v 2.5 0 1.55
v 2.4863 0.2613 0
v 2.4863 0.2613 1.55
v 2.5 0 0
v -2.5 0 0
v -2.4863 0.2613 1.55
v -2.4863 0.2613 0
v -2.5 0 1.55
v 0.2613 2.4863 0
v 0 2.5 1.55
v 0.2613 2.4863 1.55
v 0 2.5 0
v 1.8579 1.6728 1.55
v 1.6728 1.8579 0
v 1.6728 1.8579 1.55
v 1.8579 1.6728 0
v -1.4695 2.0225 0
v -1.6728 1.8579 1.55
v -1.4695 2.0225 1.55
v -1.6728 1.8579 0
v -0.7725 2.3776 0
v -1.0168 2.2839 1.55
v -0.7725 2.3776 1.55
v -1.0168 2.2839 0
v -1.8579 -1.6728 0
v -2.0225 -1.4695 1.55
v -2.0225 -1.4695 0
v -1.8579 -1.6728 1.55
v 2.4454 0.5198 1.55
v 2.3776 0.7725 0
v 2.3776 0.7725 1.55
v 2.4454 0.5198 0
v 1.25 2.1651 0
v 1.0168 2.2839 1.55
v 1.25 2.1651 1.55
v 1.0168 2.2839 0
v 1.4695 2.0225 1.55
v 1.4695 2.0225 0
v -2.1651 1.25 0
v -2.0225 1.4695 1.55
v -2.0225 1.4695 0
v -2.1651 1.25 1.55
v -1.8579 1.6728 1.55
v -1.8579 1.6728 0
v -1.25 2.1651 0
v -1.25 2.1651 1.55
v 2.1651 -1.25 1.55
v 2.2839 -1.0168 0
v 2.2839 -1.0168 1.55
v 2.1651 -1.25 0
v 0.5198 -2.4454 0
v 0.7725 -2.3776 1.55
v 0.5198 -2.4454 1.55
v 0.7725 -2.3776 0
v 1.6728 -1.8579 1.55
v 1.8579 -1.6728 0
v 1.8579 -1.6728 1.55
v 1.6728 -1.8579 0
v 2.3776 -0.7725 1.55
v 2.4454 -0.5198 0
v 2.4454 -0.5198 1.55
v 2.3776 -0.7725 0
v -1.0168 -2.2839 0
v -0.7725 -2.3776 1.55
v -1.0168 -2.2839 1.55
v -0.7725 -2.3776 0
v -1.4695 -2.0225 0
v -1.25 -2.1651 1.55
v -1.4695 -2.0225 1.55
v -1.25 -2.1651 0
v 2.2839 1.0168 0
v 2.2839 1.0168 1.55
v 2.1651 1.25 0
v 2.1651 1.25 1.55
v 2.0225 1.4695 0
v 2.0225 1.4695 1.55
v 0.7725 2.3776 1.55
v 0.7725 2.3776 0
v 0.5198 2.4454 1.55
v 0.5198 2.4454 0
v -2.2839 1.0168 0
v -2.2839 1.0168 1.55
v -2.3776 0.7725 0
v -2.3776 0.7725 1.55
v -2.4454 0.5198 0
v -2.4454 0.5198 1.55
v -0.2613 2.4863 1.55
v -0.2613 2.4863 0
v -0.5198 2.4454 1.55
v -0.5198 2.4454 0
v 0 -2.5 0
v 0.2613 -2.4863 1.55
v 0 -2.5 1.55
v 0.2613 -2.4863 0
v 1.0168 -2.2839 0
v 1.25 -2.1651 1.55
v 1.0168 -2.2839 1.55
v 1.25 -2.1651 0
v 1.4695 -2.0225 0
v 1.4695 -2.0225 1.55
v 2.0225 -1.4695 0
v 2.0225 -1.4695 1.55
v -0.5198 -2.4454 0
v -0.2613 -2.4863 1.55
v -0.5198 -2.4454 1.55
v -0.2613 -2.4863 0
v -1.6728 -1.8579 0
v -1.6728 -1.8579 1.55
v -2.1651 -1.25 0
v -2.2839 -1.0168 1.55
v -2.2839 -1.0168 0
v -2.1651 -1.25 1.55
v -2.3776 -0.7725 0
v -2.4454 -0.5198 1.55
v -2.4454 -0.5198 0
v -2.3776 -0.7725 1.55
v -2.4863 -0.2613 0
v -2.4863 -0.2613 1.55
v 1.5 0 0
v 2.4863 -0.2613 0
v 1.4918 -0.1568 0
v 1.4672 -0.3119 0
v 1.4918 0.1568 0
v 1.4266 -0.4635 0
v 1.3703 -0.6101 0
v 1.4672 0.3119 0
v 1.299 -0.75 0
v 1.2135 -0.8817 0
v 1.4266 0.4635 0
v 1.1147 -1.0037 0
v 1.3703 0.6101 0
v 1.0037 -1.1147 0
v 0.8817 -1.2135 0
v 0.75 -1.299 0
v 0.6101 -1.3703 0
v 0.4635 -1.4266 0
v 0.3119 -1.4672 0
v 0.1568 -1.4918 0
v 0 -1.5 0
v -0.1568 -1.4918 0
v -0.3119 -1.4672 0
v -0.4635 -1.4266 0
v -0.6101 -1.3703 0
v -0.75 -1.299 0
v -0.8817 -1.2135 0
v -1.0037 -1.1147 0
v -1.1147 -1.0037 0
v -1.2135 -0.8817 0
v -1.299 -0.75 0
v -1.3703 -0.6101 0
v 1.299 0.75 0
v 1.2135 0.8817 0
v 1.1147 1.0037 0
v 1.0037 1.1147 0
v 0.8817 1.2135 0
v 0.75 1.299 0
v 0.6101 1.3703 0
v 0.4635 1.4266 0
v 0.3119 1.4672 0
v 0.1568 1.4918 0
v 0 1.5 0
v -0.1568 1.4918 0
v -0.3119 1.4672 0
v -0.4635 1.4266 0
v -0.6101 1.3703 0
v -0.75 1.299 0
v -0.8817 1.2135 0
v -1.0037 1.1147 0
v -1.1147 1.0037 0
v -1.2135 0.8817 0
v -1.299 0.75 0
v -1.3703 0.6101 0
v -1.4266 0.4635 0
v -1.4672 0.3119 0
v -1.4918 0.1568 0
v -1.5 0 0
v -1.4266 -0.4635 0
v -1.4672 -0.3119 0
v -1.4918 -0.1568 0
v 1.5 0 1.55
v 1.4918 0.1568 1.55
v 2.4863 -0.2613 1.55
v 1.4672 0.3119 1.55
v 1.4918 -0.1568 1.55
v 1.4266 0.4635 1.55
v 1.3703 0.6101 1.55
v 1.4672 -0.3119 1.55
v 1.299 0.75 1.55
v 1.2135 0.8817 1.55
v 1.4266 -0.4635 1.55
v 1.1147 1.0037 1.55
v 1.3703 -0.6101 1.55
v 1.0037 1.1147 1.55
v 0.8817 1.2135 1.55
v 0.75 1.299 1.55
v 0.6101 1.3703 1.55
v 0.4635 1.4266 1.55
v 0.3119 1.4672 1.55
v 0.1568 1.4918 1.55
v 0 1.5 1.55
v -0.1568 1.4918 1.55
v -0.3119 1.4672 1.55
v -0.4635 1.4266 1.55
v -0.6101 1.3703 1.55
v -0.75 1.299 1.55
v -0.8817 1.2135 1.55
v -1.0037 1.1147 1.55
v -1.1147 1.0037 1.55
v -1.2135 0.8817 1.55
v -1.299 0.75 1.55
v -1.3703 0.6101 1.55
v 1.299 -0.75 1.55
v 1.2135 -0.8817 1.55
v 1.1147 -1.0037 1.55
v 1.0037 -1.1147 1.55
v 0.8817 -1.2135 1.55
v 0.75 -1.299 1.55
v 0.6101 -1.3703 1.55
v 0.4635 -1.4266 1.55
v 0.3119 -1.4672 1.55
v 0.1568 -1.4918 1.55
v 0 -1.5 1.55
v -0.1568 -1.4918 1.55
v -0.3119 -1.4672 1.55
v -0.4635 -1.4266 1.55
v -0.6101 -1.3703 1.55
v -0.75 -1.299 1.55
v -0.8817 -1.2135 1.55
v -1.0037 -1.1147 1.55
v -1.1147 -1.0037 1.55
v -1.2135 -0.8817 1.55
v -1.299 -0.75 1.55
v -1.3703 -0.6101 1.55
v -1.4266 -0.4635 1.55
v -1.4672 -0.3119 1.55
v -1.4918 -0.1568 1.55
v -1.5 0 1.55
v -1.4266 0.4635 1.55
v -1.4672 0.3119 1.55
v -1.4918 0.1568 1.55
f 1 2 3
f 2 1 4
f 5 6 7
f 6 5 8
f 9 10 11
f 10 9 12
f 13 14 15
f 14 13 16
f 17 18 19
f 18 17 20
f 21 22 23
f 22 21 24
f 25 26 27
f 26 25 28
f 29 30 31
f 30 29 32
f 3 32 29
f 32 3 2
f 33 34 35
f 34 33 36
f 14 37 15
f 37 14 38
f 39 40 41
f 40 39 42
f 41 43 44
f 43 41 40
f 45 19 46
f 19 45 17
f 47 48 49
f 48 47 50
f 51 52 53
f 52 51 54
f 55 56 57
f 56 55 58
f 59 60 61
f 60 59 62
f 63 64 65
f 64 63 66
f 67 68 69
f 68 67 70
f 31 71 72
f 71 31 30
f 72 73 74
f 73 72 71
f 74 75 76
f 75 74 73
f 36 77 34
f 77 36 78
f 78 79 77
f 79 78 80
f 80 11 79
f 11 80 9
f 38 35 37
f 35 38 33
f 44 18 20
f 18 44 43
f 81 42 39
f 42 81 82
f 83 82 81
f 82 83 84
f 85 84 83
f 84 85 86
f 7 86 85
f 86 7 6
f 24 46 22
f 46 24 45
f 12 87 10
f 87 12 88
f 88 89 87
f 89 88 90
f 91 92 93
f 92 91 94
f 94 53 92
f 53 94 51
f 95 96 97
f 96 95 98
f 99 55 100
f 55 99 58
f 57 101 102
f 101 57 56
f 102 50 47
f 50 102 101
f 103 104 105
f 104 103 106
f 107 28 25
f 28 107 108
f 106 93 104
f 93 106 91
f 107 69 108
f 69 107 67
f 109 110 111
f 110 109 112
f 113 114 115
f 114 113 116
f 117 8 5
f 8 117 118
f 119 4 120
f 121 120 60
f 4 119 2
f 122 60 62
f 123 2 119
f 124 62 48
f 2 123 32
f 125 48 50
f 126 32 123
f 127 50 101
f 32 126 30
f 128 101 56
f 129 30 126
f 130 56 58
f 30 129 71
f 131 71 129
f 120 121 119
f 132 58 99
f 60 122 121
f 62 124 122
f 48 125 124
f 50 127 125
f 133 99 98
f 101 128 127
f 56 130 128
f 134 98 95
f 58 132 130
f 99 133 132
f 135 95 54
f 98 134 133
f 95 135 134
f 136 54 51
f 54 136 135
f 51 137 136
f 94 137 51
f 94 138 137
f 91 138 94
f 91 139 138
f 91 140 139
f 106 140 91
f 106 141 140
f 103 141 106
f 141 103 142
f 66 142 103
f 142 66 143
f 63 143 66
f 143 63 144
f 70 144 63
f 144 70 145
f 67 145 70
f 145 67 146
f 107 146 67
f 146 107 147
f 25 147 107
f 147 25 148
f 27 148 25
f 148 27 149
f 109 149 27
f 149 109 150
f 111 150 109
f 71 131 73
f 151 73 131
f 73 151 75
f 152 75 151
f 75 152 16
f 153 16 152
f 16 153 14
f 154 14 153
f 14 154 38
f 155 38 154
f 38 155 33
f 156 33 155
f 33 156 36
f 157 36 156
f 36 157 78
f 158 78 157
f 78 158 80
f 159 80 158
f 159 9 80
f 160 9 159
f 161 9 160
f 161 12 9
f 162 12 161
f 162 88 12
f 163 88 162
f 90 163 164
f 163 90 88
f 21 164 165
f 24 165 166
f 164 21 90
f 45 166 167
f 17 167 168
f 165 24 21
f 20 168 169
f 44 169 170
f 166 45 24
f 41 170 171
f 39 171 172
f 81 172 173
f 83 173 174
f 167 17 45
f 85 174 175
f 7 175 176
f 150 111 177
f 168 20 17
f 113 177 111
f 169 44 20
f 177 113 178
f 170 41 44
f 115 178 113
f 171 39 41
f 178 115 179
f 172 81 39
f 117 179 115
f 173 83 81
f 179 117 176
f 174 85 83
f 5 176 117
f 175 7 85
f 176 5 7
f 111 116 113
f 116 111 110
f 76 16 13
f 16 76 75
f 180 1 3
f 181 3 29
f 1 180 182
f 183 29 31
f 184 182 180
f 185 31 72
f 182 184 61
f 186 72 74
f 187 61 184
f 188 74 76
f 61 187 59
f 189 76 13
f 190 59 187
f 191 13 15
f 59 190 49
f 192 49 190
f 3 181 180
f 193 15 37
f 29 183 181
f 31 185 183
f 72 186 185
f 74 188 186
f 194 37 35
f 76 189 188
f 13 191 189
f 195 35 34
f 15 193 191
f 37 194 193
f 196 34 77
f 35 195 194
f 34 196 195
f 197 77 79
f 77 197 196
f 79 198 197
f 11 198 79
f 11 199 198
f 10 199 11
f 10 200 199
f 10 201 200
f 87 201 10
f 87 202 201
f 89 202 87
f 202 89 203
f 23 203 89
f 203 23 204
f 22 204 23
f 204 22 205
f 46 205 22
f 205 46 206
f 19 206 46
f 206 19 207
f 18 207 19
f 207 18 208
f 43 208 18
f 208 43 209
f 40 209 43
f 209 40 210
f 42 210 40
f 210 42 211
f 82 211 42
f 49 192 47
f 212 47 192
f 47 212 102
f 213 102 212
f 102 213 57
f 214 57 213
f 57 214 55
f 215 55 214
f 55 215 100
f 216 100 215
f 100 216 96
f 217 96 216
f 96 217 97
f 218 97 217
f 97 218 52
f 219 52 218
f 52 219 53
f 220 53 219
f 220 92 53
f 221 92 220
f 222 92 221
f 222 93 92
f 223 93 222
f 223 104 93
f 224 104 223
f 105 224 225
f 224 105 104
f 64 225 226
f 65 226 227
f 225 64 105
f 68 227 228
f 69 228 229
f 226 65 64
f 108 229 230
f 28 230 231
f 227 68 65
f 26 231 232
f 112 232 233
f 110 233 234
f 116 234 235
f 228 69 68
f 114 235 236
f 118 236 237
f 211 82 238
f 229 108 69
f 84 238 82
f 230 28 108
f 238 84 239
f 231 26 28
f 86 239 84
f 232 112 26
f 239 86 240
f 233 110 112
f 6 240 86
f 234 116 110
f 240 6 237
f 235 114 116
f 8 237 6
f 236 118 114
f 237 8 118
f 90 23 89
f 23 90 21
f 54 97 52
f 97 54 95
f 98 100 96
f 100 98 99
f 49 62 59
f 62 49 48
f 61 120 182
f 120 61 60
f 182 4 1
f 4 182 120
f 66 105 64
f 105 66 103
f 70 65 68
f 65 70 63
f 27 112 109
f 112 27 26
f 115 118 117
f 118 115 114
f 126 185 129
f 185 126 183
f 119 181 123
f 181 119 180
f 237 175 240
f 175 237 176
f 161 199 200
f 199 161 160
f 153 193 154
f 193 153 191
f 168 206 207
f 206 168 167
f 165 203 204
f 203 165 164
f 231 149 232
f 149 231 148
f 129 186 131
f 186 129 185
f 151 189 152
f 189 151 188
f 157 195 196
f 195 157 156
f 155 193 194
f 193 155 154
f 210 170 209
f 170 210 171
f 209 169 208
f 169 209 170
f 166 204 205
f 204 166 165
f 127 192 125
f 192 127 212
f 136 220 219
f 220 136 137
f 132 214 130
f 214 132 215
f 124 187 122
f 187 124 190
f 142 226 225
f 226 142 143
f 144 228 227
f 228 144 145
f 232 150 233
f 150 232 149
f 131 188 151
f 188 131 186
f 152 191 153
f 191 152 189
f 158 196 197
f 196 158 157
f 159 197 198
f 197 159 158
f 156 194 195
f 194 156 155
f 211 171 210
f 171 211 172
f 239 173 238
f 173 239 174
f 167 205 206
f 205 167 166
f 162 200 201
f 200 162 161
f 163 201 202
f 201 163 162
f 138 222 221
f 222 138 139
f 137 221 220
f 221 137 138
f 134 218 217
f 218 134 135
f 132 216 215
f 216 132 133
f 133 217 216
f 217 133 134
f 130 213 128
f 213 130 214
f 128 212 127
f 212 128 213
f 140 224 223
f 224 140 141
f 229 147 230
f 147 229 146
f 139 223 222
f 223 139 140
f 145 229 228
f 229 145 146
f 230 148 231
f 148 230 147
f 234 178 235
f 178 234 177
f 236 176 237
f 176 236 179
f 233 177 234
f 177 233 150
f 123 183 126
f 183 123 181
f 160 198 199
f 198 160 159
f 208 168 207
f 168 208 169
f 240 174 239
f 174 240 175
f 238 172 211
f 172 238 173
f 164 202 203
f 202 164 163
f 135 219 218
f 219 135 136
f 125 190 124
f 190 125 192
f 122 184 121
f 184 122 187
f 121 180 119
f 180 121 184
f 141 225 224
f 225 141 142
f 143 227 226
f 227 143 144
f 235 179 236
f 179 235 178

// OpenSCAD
r=1.5;
// low profile
h=1.55;
// high profile
// h=4.15;

$fn=60;

difference() {
    cylinder( r=r+1, h=h );
    translate([0,0, -1])
    cylinder( r=r, h=h*2 );
};
